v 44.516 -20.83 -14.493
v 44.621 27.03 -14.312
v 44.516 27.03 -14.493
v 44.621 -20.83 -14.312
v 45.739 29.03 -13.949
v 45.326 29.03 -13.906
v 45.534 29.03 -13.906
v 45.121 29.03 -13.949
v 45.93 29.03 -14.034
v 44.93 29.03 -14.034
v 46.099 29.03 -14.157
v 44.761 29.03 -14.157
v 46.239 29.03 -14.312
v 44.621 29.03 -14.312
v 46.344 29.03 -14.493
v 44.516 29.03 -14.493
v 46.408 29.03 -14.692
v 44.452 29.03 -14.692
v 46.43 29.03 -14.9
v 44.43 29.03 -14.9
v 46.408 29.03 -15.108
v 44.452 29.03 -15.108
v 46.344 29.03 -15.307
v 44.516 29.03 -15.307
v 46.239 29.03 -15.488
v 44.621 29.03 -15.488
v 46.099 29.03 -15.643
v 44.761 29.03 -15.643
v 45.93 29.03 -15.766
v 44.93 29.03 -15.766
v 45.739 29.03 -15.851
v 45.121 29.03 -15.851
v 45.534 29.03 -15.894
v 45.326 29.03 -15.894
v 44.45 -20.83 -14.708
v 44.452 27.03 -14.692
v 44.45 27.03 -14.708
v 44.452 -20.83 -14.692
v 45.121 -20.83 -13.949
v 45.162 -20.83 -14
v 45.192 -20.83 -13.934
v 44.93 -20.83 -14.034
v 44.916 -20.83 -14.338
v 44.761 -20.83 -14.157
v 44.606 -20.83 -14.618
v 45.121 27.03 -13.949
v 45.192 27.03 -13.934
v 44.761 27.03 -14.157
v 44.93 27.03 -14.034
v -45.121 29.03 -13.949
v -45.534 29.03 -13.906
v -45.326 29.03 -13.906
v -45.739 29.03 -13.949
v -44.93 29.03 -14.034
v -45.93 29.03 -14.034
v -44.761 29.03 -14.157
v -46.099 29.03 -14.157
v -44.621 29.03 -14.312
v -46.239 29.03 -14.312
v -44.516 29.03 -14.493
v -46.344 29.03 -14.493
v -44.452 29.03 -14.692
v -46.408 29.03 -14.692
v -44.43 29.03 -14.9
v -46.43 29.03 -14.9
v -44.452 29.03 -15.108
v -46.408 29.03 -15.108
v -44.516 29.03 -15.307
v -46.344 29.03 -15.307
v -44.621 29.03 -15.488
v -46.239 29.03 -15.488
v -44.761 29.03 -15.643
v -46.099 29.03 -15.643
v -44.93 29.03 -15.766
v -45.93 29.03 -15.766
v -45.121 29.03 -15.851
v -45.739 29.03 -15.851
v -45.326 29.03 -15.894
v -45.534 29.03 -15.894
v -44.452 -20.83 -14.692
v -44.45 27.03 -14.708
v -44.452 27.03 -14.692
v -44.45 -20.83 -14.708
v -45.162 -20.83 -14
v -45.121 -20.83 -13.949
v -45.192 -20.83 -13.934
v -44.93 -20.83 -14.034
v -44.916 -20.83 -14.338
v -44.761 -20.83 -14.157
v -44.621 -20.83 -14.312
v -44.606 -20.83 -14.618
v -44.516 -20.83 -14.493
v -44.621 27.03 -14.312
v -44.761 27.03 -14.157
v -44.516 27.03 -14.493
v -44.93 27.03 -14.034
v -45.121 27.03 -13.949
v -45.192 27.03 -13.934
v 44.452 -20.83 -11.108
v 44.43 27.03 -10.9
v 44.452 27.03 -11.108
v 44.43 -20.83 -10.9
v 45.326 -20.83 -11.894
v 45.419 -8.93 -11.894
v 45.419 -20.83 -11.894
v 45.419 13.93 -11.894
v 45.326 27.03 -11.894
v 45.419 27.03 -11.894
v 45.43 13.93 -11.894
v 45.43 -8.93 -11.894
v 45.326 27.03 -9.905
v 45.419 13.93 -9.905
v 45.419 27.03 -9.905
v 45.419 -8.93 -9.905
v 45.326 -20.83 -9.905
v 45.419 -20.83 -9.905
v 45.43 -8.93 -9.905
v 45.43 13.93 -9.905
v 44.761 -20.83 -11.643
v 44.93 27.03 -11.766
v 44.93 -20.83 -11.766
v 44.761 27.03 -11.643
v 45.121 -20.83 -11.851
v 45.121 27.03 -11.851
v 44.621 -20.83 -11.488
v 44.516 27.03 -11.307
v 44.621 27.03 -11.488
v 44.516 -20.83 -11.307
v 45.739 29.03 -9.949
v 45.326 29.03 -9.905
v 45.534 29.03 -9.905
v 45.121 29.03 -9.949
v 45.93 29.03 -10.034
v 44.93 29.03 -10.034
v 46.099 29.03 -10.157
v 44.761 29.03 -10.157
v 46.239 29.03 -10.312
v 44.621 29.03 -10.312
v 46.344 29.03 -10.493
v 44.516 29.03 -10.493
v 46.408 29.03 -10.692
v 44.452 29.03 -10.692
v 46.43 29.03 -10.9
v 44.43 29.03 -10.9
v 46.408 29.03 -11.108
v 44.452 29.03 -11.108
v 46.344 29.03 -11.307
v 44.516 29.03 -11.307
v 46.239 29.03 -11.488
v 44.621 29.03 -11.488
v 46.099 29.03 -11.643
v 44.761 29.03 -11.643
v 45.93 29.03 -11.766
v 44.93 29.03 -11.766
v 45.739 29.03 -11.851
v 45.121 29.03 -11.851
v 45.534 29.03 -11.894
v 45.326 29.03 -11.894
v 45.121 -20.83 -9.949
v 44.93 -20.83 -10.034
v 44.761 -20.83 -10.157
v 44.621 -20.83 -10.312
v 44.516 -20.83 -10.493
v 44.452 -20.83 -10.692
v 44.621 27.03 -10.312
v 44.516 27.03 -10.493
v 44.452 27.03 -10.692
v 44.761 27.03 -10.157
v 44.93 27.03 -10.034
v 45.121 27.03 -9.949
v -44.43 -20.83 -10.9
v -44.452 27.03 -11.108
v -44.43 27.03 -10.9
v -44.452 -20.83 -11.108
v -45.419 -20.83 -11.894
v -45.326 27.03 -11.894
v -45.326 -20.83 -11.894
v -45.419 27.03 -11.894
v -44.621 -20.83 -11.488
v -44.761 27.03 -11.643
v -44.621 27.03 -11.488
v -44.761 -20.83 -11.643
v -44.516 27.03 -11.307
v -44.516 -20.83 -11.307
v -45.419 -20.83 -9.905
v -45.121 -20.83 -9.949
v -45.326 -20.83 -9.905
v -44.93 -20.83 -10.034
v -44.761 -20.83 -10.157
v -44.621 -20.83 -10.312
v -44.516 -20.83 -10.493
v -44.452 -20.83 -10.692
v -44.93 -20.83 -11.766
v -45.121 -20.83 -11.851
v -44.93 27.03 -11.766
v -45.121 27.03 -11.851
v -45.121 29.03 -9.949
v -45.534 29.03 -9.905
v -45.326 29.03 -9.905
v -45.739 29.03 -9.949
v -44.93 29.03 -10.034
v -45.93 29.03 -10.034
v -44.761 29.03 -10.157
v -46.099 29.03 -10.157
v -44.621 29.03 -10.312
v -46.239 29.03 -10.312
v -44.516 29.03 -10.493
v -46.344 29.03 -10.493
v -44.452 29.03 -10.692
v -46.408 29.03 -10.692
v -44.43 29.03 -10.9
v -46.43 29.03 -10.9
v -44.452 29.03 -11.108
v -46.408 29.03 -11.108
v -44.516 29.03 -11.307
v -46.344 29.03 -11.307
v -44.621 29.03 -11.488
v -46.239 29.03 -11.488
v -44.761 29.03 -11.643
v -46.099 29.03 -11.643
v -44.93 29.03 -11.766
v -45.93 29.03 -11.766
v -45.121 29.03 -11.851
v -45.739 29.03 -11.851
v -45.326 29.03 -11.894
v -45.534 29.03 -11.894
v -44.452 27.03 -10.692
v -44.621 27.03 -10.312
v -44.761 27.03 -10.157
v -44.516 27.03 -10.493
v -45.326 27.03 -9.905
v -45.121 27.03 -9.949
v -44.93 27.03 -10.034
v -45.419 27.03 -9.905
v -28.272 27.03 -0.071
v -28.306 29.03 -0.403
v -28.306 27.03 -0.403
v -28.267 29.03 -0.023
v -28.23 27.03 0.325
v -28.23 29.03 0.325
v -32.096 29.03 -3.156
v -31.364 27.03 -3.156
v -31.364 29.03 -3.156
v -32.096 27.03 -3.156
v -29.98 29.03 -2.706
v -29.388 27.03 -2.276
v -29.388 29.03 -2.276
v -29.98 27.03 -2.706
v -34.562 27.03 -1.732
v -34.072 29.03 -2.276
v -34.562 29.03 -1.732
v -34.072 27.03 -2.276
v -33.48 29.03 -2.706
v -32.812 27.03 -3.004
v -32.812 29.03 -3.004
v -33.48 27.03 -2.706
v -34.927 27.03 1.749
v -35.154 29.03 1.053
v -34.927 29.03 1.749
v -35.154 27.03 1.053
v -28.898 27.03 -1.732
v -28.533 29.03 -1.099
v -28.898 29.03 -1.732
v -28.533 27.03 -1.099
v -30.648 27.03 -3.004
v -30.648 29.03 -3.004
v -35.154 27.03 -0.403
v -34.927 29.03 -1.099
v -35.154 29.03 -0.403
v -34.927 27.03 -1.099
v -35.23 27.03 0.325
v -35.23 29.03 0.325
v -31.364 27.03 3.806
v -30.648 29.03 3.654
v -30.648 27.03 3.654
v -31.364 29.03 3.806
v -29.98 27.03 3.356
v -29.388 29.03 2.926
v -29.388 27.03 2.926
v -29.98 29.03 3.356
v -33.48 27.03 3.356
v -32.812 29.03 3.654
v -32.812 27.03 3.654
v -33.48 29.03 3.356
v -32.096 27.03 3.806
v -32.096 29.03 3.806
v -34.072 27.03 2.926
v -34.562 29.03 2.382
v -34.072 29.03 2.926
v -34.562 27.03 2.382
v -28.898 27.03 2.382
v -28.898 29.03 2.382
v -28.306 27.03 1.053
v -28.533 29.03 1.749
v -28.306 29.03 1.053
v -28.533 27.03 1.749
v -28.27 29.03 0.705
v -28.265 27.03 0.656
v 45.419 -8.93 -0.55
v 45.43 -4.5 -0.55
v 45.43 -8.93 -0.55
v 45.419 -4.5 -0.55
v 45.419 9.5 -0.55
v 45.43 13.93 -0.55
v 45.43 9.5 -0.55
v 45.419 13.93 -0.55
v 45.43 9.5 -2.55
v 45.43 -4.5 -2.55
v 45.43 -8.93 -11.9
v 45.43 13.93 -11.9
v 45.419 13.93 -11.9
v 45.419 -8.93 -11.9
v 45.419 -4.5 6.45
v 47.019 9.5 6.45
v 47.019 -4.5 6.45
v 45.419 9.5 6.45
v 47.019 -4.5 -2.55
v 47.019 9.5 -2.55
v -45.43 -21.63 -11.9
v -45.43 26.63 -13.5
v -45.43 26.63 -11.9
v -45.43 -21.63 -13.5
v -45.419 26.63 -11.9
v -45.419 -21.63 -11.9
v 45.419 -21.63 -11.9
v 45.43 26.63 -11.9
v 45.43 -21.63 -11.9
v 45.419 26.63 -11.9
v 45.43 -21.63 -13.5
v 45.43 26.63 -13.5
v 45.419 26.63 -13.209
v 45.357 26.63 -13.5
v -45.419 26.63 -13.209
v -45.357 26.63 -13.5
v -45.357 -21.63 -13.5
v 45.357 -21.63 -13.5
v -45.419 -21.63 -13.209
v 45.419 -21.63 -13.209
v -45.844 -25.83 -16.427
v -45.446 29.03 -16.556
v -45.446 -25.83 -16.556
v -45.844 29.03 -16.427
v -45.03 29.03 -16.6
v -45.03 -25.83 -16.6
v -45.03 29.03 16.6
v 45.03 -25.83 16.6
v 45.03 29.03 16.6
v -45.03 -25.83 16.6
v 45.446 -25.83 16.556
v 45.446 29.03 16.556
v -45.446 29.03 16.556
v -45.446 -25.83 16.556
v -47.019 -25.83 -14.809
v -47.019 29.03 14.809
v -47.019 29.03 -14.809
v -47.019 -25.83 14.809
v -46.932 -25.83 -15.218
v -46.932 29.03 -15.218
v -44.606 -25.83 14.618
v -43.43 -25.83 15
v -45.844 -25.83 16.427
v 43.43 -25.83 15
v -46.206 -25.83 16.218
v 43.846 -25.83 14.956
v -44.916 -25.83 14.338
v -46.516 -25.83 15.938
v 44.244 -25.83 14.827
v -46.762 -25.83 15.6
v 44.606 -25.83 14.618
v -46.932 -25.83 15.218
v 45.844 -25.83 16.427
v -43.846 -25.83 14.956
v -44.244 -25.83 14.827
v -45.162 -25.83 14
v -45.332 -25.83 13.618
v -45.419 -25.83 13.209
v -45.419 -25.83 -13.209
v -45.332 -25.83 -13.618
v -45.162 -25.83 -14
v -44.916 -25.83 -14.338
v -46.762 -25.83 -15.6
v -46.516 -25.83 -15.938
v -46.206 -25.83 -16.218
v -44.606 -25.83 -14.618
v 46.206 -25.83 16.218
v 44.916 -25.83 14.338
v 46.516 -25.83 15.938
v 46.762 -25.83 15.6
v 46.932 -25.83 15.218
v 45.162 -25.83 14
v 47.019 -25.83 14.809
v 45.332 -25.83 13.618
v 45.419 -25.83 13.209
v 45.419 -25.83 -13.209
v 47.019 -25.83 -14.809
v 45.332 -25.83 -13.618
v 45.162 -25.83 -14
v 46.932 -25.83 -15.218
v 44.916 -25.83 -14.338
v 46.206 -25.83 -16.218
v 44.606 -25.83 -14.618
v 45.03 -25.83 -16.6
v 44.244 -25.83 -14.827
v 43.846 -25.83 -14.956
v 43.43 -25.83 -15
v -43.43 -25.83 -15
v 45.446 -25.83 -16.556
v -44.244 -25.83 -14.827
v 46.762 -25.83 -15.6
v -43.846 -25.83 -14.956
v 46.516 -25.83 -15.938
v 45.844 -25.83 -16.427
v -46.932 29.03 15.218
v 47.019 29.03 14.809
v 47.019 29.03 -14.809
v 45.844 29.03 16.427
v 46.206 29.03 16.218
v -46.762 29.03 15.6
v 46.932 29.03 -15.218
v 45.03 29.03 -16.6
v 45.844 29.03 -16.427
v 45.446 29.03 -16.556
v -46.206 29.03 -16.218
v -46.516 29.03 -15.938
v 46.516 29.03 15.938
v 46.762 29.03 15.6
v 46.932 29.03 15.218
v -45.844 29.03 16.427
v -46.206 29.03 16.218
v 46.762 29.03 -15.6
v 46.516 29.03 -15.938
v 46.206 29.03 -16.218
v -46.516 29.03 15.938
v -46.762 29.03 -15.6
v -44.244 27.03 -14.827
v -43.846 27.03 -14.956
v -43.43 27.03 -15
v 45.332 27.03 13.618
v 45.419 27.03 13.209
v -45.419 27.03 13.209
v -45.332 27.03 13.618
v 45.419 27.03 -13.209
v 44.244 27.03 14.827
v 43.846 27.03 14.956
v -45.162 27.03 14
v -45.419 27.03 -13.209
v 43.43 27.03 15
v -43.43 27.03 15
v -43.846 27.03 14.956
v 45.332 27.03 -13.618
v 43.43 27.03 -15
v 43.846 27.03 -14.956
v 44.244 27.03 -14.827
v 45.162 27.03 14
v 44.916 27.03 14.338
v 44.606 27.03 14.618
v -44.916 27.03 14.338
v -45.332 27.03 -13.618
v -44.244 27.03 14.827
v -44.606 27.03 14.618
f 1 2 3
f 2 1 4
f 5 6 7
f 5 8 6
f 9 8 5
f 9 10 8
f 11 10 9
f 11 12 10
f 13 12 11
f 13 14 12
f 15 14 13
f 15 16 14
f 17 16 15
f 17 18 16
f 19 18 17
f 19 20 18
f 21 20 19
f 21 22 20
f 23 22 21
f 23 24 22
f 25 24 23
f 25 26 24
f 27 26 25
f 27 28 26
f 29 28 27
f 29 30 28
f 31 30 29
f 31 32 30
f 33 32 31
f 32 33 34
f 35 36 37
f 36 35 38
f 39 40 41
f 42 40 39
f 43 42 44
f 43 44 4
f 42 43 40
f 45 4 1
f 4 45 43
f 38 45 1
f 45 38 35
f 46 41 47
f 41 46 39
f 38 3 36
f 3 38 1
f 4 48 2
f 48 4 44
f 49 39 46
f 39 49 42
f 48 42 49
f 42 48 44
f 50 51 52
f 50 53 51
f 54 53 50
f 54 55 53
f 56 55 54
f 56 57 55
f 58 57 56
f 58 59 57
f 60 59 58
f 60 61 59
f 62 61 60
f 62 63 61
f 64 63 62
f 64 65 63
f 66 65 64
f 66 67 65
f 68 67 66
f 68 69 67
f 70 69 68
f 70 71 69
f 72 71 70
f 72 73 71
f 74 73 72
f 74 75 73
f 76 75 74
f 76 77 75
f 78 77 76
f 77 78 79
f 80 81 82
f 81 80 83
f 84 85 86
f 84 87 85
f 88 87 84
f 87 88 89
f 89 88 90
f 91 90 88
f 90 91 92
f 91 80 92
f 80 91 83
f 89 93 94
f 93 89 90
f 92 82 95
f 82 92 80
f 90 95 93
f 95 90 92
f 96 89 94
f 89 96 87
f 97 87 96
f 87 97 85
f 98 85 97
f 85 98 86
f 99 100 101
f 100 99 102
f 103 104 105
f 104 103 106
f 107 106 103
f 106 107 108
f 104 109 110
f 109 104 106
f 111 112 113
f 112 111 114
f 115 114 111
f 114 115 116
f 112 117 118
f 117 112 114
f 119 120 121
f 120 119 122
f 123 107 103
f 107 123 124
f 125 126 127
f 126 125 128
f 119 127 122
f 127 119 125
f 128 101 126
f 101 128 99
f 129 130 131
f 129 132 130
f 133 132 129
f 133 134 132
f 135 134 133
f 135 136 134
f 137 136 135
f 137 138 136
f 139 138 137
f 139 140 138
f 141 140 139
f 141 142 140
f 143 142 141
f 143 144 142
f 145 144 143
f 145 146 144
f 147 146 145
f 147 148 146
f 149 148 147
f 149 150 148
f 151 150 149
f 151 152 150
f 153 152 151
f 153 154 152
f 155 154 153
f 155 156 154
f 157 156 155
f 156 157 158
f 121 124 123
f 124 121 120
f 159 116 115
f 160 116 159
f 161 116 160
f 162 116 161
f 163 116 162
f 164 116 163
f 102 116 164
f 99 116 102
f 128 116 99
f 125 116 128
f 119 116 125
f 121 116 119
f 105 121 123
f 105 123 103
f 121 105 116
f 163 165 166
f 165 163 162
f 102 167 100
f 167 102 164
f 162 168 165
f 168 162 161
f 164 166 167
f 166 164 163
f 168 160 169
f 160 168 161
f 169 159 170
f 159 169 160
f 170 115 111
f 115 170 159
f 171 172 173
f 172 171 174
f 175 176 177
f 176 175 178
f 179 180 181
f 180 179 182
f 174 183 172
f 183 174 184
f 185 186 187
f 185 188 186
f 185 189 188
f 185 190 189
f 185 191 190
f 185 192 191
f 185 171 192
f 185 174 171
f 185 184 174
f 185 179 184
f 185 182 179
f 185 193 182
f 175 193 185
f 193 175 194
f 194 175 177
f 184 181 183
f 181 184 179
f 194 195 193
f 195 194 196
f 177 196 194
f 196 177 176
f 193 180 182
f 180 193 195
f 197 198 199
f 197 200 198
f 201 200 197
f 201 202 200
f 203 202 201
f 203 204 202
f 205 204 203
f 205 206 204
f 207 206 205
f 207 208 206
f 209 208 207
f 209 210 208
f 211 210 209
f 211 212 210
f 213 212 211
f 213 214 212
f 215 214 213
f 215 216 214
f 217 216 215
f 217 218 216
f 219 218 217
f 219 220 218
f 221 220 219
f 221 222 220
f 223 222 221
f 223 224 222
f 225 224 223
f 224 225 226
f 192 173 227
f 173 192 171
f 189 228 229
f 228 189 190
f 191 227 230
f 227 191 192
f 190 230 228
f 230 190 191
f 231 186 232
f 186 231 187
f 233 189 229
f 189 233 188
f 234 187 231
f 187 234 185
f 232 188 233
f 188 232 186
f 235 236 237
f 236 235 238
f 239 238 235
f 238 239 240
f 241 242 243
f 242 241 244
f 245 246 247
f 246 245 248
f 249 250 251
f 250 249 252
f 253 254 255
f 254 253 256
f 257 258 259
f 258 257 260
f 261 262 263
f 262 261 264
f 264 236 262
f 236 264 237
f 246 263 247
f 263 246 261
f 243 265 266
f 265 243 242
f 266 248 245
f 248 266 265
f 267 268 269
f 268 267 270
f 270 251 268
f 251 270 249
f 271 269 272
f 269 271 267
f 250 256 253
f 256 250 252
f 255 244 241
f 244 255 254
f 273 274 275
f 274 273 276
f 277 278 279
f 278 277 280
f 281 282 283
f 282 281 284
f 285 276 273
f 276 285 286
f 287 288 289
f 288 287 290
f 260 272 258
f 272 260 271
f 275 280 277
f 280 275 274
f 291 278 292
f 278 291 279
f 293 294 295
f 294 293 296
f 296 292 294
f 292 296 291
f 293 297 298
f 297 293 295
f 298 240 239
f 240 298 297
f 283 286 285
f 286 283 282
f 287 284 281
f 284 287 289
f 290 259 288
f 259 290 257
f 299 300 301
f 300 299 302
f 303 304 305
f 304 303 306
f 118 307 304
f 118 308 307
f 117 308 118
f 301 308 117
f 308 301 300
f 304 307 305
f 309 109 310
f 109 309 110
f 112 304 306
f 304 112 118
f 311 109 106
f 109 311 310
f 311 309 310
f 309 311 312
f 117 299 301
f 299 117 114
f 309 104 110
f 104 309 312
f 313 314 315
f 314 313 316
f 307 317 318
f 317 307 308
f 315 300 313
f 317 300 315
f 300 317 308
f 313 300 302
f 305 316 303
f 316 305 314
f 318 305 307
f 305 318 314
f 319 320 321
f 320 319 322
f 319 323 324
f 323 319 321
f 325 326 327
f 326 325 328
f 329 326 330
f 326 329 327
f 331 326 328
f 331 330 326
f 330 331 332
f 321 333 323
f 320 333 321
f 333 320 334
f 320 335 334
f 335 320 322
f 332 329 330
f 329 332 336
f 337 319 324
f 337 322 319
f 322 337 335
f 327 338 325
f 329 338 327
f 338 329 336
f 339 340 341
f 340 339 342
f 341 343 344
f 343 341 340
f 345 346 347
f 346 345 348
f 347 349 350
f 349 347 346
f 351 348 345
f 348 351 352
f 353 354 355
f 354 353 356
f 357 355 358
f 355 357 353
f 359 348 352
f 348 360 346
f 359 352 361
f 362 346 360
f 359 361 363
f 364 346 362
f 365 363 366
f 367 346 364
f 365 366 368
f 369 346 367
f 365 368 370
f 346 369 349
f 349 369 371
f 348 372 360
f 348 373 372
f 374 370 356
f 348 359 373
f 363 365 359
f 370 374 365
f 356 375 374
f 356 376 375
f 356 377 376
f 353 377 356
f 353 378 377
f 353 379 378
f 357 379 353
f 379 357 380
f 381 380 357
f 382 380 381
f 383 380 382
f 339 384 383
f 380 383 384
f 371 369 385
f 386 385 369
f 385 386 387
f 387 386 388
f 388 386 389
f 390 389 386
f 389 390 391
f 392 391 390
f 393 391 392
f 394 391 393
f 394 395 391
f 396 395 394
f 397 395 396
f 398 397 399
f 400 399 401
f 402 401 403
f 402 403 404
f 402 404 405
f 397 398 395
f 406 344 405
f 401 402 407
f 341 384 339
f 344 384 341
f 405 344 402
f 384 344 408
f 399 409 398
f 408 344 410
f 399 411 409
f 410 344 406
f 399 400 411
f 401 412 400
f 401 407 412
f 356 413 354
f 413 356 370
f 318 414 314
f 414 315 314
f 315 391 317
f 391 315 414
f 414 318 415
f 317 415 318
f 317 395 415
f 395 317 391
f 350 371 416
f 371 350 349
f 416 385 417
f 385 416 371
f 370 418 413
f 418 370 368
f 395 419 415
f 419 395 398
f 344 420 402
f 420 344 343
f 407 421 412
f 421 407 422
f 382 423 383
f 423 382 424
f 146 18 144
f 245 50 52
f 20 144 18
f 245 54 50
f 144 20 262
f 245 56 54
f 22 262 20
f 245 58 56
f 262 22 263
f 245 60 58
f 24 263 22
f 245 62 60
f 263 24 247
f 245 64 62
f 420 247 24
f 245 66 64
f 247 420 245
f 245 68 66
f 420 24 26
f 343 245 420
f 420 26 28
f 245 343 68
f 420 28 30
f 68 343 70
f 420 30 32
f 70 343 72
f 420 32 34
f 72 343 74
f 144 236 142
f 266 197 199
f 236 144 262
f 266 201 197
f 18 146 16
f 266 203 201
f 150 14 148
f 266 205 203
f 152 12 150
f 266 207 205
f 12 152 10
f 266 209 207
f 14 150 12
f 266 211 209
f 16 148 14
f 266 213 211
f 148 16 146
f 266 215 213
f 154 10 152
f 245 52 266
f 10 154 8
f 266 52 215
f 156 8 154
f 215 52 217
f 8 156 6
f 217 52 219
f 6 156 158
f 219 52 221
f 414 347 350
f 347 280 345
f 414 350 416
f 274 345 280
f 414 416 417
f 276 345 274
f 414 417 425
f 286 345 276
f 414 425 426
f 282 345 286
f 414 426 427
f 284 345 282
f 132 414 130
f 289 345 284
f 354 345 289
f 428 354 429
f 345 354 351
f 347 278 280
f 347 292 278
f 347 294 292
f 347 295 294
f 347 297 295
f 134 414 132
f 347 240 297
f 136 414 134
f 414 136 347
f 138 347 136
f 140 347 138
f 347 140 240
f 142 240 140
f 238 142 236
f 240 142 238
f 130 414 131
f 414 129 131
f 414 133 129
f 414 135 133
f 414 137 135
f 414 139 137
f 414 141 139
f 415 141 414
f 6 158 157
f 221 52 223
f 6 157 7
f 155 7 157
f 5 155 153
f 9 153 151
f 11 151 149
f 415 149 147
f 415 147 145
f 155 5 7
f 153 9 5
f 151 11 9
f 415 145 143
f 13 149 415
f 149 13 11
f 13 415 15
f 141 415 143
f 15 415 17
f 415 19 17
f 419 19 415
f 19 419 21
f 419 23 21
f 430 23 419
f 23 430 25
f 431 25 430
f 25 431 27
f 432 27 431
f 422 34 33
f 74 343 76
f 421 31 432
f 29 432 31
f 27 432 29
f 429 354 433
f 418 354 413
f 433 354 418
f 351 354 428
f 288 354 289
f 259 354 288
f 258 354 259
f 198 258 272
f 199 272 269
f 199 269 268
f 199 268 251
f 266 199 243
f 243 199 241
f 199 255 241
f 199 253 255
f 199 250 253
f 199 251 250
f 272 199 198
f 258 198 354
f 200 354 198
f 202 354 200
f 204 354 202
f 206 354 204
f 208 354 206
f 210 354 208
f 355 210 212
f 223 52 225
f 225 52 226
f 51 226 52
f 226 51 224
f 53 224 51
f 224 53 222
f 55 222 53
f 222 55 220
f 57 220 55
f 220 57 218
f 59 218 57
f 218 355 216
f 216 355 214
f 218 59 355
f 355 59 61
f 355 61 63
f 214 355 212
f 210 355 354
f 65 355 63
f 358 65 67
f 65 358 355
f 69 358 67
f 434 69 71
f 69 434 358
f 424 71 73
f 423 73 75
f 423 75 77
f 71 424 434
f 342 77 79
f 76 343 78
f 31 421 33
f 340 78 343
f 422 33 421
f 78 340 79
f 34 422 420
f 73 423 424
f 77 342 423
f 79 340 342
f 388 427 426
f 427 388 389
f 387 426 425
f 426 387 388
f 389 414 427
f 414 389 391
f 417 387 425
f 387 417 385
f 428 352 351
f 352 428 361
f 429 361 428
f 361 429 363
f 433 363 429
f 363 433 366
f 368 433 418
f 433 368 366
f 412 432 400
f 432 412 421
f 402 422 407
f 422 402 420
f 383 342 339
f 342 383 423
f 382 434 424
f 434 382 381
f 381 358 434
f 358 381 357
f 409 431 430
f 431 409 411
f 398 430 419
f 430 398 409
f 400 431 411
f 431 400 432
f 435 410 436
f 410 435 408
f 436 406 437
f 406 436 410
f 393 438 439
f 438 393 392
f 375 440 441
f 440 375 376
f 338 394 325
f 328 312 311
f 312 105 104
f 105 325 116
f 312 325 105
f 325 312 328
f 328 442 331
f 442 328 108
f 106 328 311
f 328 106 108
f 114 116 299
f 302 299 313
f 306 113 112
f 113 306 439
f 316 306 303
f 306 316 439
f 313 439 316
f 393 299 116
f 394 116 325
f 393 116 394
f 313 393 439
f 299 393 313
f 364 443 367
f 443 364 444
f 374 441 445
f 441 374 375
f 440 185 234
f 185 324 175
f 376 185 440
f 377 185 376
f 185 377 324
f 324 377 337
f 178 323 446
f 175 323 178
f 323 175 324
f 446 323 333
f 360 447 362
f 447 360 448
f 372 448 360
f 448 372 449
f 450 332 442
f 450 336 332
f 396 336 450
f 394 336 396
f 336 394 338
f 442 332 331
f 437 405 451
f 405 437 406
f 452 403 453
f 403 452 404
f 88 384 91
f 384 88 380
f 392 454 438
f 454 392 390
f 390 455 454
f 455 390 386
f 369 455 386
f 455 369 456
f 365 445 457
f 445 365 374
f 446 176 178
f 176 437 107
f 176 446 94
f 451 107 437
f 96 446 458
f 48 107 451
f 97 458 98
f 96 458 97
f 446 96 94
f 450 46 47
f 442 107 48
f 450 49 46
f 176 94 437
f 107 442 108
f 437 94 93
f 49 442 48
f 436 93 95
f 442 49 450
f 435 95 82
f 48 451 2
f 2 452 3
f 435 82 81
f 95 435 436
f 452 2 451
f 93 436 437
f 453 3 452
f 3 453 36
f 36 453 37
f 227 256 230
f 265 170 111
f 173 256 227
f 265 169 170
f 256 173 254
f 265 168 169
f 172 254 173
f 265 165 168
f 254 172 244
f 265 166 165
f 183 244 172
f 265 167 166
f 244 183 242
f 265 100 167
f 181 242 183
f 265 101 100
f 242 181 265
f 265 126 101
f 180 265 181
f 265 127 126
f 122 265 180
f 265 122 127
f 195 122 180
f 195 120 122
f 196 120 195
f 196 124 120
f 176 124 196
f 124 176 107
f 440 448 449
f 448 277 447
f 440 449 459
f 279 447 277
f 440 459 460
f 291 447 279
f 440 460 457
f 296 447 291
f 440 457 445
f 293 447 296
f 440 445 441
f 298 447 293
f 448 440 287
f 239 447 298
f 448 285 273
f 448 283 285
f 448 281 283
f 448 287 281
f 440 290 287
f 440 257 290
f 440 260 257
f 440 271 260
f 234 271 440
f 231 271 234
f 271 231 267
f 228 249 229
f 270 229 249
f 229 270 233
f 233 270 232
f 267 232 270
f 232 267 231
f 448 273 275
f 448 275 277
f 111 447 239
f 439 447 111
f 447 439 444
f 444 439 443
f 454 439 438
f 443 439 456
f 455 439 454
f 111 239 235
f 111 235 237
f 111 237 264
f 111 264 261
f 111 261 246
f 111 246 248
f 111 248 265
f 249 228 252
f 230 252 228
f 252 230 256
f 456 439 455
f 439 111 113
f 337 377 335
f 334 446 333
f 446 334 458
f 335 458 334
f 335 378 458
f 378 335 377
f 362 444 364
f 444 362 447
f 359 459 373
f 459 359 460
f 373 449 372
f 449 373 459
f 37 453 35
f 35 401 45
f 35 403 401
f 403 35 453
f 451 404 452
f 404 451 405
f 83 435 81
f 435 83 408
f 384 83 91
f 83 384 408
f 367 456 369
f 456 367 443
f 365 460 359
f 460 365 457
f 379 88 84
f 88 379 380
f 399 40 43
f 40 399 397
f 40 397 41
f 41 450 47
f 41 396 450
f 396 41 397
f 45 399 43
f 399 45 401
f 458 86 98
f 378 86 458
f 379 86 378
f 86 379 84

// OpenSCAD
$fs = 0.15;

module roundedcube(size = [1, 1, 1], center = false, radius = 0.5, apply_to = "all") {
	// If single value, convert to [x, y, z] vector
	size = (size[0] == undef) ? [size, size, size] : size;

	translate_min = radius;
	translate_xmax = size[0] - radius;
	translate_ymax = size[1] - radius;
	translate_zmax = size[2] - radius;

	diameter = radius * 2;

	obj_translate = (center == false) ?
		[0, 0, 0] : [
			-(size[0] / 2),
			-(size[1] / 2),
			-(size[2] / 2)
		];

	translate(v = obj_translate) {
		hull() {
			for (translate_x = [translate_min, translate_xmax]) {
				x_at = (translate_x == translate_min) ? "min" : "max";
				for (translate_y = [translate_min, translate_ymax]) {
					y_at = (translate_y == translate_min) ? "min" : "max";
					for (translate_z = [translate_min, translate_zmax]) {
						z_at = (translate_z == translate_min) ? "min" : "max";

						translate(v = [translate_x, translate_y, translate_z])
						if (
							(apply_to == "all") ||
							(apply_to == "xmin" && x_at == "min") || (apply_to == "xmax" && x_at == "max") ||
							(apply_to == "ymin" && y_at == "min") || (apply_to == "ymax" && y_at == "max") ||
							(apply_to == "zmin" && z_at == "min") || (apply_to == "zmax" && z_at == "max")
						) {
							sphere(r = radius);
						} else {
							rotate = 
								(apply_to == "xmin" || apply_to == "xmax" || apply_to == "x") ? [0, 90, 0] : (
								(apply_to == "ymin" || apply_to == "ymax" || apply_to == "y") ? [90, 90, 0] :
								[0, 0, 0]
							);
							rotate(a = rotate)
							cylinder(h = diameter, r = radius, center = true);
						}
					}
				}
			}
		}
	}
}

// $fn=100;
pcb_h = 1.6;
pcb_t = 5;
pcb_w = 48.260;
//pcb_l = 87.860;
pcb_l = 90.86;

stm_h = 11.35;
stm_w = 22.860;
stm_l = 53.430;

usb_w = 14;
usb_h = 9;    
rf_w = 27;    

wall = 1.6;
box_h=30;
down=-13.5;

module holder()
{
    dia = 2;
    translate([pcb_l,0,-dia/2-0.4]) rotate([270,0,0]) cylinder(d=2,h=pcb_w + wall);
    translate([0,0,-dia/2-0.4]) rotate([270,0,0]) cylinder(d=2,h=pcb_w + wall);
    
    translate([pcb_l,0,dia/2+pcb_h]) rotate([270,0,0]) cylinder(d=2,h=pcb_w + wall);
    translate([0,0,dia/2+pcb_h]) rotate([270,0,0]) cylinder(d=2,h=pcb_w + wall);

}
module pcb()
{
    cube([pcb_l,pcb_w,pcb_h]);
}
module rf7021()
{
    rf_pcb_h = 1;
    ant_dia = 7;
    sma_pin_dia = 1.25;
    translate([-rf_w/2,0,0])cube([rf_w,pcb_w,rf_pcb_h]);
    translate([0,35,rf_pcb_h+sma_pin_dia/2]) rotate([270,0,0]) cylinder(d=ant_dia,h=30);
}

module stm()
{
    cube([stm_l,stm_w,stm_h]);
    translate([stm_l-2,(stm_w-usb_w)/2 ,stm_h-usb_h/2+2.5]) cube([20,usb_w,usb_h]);   
}

module hotspot()
{
    pcb();
    translate([12.7+1,0,pcb_h+10.6])rf7021();
    translate([pcb_l - stm_l,(pcb_w-stm_w)/2,pcb_h]) stm();
}




//translate([-wall,-wall,-wall]) cube([pcb_l+2*wall,pcb_w+2*wall,box_h+wall]);
// hotspot();
// rf7021();
// stm();
extend_h = 5;

module assembly()
{

translate([-pcb_l/2,-pcb_w/2+wall/2+extend_h/2,down]) 
{
           // hotspot();    

    holder();
}

difference()
{
    color("Orange")
    translate([0,wall,0]) roundedcube([pcb_l+2*wall, pcb_w+wall+extend_h, box_h+2*wall], true, 2, "y");
   
    {
    roundedcube([pcb_l, pcb_w+wall/2+extend_h, box_h], true, 2, "y");
    translate([-pcb_l/2,-pcb_w/2+extend_h/2,down]) 
    {
        hotspot();    
    }
        
    //    translate([0,-10,0]) cube([pcb_l-2,pcb_w+10,box_h-wall]);
    }
}
}


assembly();
